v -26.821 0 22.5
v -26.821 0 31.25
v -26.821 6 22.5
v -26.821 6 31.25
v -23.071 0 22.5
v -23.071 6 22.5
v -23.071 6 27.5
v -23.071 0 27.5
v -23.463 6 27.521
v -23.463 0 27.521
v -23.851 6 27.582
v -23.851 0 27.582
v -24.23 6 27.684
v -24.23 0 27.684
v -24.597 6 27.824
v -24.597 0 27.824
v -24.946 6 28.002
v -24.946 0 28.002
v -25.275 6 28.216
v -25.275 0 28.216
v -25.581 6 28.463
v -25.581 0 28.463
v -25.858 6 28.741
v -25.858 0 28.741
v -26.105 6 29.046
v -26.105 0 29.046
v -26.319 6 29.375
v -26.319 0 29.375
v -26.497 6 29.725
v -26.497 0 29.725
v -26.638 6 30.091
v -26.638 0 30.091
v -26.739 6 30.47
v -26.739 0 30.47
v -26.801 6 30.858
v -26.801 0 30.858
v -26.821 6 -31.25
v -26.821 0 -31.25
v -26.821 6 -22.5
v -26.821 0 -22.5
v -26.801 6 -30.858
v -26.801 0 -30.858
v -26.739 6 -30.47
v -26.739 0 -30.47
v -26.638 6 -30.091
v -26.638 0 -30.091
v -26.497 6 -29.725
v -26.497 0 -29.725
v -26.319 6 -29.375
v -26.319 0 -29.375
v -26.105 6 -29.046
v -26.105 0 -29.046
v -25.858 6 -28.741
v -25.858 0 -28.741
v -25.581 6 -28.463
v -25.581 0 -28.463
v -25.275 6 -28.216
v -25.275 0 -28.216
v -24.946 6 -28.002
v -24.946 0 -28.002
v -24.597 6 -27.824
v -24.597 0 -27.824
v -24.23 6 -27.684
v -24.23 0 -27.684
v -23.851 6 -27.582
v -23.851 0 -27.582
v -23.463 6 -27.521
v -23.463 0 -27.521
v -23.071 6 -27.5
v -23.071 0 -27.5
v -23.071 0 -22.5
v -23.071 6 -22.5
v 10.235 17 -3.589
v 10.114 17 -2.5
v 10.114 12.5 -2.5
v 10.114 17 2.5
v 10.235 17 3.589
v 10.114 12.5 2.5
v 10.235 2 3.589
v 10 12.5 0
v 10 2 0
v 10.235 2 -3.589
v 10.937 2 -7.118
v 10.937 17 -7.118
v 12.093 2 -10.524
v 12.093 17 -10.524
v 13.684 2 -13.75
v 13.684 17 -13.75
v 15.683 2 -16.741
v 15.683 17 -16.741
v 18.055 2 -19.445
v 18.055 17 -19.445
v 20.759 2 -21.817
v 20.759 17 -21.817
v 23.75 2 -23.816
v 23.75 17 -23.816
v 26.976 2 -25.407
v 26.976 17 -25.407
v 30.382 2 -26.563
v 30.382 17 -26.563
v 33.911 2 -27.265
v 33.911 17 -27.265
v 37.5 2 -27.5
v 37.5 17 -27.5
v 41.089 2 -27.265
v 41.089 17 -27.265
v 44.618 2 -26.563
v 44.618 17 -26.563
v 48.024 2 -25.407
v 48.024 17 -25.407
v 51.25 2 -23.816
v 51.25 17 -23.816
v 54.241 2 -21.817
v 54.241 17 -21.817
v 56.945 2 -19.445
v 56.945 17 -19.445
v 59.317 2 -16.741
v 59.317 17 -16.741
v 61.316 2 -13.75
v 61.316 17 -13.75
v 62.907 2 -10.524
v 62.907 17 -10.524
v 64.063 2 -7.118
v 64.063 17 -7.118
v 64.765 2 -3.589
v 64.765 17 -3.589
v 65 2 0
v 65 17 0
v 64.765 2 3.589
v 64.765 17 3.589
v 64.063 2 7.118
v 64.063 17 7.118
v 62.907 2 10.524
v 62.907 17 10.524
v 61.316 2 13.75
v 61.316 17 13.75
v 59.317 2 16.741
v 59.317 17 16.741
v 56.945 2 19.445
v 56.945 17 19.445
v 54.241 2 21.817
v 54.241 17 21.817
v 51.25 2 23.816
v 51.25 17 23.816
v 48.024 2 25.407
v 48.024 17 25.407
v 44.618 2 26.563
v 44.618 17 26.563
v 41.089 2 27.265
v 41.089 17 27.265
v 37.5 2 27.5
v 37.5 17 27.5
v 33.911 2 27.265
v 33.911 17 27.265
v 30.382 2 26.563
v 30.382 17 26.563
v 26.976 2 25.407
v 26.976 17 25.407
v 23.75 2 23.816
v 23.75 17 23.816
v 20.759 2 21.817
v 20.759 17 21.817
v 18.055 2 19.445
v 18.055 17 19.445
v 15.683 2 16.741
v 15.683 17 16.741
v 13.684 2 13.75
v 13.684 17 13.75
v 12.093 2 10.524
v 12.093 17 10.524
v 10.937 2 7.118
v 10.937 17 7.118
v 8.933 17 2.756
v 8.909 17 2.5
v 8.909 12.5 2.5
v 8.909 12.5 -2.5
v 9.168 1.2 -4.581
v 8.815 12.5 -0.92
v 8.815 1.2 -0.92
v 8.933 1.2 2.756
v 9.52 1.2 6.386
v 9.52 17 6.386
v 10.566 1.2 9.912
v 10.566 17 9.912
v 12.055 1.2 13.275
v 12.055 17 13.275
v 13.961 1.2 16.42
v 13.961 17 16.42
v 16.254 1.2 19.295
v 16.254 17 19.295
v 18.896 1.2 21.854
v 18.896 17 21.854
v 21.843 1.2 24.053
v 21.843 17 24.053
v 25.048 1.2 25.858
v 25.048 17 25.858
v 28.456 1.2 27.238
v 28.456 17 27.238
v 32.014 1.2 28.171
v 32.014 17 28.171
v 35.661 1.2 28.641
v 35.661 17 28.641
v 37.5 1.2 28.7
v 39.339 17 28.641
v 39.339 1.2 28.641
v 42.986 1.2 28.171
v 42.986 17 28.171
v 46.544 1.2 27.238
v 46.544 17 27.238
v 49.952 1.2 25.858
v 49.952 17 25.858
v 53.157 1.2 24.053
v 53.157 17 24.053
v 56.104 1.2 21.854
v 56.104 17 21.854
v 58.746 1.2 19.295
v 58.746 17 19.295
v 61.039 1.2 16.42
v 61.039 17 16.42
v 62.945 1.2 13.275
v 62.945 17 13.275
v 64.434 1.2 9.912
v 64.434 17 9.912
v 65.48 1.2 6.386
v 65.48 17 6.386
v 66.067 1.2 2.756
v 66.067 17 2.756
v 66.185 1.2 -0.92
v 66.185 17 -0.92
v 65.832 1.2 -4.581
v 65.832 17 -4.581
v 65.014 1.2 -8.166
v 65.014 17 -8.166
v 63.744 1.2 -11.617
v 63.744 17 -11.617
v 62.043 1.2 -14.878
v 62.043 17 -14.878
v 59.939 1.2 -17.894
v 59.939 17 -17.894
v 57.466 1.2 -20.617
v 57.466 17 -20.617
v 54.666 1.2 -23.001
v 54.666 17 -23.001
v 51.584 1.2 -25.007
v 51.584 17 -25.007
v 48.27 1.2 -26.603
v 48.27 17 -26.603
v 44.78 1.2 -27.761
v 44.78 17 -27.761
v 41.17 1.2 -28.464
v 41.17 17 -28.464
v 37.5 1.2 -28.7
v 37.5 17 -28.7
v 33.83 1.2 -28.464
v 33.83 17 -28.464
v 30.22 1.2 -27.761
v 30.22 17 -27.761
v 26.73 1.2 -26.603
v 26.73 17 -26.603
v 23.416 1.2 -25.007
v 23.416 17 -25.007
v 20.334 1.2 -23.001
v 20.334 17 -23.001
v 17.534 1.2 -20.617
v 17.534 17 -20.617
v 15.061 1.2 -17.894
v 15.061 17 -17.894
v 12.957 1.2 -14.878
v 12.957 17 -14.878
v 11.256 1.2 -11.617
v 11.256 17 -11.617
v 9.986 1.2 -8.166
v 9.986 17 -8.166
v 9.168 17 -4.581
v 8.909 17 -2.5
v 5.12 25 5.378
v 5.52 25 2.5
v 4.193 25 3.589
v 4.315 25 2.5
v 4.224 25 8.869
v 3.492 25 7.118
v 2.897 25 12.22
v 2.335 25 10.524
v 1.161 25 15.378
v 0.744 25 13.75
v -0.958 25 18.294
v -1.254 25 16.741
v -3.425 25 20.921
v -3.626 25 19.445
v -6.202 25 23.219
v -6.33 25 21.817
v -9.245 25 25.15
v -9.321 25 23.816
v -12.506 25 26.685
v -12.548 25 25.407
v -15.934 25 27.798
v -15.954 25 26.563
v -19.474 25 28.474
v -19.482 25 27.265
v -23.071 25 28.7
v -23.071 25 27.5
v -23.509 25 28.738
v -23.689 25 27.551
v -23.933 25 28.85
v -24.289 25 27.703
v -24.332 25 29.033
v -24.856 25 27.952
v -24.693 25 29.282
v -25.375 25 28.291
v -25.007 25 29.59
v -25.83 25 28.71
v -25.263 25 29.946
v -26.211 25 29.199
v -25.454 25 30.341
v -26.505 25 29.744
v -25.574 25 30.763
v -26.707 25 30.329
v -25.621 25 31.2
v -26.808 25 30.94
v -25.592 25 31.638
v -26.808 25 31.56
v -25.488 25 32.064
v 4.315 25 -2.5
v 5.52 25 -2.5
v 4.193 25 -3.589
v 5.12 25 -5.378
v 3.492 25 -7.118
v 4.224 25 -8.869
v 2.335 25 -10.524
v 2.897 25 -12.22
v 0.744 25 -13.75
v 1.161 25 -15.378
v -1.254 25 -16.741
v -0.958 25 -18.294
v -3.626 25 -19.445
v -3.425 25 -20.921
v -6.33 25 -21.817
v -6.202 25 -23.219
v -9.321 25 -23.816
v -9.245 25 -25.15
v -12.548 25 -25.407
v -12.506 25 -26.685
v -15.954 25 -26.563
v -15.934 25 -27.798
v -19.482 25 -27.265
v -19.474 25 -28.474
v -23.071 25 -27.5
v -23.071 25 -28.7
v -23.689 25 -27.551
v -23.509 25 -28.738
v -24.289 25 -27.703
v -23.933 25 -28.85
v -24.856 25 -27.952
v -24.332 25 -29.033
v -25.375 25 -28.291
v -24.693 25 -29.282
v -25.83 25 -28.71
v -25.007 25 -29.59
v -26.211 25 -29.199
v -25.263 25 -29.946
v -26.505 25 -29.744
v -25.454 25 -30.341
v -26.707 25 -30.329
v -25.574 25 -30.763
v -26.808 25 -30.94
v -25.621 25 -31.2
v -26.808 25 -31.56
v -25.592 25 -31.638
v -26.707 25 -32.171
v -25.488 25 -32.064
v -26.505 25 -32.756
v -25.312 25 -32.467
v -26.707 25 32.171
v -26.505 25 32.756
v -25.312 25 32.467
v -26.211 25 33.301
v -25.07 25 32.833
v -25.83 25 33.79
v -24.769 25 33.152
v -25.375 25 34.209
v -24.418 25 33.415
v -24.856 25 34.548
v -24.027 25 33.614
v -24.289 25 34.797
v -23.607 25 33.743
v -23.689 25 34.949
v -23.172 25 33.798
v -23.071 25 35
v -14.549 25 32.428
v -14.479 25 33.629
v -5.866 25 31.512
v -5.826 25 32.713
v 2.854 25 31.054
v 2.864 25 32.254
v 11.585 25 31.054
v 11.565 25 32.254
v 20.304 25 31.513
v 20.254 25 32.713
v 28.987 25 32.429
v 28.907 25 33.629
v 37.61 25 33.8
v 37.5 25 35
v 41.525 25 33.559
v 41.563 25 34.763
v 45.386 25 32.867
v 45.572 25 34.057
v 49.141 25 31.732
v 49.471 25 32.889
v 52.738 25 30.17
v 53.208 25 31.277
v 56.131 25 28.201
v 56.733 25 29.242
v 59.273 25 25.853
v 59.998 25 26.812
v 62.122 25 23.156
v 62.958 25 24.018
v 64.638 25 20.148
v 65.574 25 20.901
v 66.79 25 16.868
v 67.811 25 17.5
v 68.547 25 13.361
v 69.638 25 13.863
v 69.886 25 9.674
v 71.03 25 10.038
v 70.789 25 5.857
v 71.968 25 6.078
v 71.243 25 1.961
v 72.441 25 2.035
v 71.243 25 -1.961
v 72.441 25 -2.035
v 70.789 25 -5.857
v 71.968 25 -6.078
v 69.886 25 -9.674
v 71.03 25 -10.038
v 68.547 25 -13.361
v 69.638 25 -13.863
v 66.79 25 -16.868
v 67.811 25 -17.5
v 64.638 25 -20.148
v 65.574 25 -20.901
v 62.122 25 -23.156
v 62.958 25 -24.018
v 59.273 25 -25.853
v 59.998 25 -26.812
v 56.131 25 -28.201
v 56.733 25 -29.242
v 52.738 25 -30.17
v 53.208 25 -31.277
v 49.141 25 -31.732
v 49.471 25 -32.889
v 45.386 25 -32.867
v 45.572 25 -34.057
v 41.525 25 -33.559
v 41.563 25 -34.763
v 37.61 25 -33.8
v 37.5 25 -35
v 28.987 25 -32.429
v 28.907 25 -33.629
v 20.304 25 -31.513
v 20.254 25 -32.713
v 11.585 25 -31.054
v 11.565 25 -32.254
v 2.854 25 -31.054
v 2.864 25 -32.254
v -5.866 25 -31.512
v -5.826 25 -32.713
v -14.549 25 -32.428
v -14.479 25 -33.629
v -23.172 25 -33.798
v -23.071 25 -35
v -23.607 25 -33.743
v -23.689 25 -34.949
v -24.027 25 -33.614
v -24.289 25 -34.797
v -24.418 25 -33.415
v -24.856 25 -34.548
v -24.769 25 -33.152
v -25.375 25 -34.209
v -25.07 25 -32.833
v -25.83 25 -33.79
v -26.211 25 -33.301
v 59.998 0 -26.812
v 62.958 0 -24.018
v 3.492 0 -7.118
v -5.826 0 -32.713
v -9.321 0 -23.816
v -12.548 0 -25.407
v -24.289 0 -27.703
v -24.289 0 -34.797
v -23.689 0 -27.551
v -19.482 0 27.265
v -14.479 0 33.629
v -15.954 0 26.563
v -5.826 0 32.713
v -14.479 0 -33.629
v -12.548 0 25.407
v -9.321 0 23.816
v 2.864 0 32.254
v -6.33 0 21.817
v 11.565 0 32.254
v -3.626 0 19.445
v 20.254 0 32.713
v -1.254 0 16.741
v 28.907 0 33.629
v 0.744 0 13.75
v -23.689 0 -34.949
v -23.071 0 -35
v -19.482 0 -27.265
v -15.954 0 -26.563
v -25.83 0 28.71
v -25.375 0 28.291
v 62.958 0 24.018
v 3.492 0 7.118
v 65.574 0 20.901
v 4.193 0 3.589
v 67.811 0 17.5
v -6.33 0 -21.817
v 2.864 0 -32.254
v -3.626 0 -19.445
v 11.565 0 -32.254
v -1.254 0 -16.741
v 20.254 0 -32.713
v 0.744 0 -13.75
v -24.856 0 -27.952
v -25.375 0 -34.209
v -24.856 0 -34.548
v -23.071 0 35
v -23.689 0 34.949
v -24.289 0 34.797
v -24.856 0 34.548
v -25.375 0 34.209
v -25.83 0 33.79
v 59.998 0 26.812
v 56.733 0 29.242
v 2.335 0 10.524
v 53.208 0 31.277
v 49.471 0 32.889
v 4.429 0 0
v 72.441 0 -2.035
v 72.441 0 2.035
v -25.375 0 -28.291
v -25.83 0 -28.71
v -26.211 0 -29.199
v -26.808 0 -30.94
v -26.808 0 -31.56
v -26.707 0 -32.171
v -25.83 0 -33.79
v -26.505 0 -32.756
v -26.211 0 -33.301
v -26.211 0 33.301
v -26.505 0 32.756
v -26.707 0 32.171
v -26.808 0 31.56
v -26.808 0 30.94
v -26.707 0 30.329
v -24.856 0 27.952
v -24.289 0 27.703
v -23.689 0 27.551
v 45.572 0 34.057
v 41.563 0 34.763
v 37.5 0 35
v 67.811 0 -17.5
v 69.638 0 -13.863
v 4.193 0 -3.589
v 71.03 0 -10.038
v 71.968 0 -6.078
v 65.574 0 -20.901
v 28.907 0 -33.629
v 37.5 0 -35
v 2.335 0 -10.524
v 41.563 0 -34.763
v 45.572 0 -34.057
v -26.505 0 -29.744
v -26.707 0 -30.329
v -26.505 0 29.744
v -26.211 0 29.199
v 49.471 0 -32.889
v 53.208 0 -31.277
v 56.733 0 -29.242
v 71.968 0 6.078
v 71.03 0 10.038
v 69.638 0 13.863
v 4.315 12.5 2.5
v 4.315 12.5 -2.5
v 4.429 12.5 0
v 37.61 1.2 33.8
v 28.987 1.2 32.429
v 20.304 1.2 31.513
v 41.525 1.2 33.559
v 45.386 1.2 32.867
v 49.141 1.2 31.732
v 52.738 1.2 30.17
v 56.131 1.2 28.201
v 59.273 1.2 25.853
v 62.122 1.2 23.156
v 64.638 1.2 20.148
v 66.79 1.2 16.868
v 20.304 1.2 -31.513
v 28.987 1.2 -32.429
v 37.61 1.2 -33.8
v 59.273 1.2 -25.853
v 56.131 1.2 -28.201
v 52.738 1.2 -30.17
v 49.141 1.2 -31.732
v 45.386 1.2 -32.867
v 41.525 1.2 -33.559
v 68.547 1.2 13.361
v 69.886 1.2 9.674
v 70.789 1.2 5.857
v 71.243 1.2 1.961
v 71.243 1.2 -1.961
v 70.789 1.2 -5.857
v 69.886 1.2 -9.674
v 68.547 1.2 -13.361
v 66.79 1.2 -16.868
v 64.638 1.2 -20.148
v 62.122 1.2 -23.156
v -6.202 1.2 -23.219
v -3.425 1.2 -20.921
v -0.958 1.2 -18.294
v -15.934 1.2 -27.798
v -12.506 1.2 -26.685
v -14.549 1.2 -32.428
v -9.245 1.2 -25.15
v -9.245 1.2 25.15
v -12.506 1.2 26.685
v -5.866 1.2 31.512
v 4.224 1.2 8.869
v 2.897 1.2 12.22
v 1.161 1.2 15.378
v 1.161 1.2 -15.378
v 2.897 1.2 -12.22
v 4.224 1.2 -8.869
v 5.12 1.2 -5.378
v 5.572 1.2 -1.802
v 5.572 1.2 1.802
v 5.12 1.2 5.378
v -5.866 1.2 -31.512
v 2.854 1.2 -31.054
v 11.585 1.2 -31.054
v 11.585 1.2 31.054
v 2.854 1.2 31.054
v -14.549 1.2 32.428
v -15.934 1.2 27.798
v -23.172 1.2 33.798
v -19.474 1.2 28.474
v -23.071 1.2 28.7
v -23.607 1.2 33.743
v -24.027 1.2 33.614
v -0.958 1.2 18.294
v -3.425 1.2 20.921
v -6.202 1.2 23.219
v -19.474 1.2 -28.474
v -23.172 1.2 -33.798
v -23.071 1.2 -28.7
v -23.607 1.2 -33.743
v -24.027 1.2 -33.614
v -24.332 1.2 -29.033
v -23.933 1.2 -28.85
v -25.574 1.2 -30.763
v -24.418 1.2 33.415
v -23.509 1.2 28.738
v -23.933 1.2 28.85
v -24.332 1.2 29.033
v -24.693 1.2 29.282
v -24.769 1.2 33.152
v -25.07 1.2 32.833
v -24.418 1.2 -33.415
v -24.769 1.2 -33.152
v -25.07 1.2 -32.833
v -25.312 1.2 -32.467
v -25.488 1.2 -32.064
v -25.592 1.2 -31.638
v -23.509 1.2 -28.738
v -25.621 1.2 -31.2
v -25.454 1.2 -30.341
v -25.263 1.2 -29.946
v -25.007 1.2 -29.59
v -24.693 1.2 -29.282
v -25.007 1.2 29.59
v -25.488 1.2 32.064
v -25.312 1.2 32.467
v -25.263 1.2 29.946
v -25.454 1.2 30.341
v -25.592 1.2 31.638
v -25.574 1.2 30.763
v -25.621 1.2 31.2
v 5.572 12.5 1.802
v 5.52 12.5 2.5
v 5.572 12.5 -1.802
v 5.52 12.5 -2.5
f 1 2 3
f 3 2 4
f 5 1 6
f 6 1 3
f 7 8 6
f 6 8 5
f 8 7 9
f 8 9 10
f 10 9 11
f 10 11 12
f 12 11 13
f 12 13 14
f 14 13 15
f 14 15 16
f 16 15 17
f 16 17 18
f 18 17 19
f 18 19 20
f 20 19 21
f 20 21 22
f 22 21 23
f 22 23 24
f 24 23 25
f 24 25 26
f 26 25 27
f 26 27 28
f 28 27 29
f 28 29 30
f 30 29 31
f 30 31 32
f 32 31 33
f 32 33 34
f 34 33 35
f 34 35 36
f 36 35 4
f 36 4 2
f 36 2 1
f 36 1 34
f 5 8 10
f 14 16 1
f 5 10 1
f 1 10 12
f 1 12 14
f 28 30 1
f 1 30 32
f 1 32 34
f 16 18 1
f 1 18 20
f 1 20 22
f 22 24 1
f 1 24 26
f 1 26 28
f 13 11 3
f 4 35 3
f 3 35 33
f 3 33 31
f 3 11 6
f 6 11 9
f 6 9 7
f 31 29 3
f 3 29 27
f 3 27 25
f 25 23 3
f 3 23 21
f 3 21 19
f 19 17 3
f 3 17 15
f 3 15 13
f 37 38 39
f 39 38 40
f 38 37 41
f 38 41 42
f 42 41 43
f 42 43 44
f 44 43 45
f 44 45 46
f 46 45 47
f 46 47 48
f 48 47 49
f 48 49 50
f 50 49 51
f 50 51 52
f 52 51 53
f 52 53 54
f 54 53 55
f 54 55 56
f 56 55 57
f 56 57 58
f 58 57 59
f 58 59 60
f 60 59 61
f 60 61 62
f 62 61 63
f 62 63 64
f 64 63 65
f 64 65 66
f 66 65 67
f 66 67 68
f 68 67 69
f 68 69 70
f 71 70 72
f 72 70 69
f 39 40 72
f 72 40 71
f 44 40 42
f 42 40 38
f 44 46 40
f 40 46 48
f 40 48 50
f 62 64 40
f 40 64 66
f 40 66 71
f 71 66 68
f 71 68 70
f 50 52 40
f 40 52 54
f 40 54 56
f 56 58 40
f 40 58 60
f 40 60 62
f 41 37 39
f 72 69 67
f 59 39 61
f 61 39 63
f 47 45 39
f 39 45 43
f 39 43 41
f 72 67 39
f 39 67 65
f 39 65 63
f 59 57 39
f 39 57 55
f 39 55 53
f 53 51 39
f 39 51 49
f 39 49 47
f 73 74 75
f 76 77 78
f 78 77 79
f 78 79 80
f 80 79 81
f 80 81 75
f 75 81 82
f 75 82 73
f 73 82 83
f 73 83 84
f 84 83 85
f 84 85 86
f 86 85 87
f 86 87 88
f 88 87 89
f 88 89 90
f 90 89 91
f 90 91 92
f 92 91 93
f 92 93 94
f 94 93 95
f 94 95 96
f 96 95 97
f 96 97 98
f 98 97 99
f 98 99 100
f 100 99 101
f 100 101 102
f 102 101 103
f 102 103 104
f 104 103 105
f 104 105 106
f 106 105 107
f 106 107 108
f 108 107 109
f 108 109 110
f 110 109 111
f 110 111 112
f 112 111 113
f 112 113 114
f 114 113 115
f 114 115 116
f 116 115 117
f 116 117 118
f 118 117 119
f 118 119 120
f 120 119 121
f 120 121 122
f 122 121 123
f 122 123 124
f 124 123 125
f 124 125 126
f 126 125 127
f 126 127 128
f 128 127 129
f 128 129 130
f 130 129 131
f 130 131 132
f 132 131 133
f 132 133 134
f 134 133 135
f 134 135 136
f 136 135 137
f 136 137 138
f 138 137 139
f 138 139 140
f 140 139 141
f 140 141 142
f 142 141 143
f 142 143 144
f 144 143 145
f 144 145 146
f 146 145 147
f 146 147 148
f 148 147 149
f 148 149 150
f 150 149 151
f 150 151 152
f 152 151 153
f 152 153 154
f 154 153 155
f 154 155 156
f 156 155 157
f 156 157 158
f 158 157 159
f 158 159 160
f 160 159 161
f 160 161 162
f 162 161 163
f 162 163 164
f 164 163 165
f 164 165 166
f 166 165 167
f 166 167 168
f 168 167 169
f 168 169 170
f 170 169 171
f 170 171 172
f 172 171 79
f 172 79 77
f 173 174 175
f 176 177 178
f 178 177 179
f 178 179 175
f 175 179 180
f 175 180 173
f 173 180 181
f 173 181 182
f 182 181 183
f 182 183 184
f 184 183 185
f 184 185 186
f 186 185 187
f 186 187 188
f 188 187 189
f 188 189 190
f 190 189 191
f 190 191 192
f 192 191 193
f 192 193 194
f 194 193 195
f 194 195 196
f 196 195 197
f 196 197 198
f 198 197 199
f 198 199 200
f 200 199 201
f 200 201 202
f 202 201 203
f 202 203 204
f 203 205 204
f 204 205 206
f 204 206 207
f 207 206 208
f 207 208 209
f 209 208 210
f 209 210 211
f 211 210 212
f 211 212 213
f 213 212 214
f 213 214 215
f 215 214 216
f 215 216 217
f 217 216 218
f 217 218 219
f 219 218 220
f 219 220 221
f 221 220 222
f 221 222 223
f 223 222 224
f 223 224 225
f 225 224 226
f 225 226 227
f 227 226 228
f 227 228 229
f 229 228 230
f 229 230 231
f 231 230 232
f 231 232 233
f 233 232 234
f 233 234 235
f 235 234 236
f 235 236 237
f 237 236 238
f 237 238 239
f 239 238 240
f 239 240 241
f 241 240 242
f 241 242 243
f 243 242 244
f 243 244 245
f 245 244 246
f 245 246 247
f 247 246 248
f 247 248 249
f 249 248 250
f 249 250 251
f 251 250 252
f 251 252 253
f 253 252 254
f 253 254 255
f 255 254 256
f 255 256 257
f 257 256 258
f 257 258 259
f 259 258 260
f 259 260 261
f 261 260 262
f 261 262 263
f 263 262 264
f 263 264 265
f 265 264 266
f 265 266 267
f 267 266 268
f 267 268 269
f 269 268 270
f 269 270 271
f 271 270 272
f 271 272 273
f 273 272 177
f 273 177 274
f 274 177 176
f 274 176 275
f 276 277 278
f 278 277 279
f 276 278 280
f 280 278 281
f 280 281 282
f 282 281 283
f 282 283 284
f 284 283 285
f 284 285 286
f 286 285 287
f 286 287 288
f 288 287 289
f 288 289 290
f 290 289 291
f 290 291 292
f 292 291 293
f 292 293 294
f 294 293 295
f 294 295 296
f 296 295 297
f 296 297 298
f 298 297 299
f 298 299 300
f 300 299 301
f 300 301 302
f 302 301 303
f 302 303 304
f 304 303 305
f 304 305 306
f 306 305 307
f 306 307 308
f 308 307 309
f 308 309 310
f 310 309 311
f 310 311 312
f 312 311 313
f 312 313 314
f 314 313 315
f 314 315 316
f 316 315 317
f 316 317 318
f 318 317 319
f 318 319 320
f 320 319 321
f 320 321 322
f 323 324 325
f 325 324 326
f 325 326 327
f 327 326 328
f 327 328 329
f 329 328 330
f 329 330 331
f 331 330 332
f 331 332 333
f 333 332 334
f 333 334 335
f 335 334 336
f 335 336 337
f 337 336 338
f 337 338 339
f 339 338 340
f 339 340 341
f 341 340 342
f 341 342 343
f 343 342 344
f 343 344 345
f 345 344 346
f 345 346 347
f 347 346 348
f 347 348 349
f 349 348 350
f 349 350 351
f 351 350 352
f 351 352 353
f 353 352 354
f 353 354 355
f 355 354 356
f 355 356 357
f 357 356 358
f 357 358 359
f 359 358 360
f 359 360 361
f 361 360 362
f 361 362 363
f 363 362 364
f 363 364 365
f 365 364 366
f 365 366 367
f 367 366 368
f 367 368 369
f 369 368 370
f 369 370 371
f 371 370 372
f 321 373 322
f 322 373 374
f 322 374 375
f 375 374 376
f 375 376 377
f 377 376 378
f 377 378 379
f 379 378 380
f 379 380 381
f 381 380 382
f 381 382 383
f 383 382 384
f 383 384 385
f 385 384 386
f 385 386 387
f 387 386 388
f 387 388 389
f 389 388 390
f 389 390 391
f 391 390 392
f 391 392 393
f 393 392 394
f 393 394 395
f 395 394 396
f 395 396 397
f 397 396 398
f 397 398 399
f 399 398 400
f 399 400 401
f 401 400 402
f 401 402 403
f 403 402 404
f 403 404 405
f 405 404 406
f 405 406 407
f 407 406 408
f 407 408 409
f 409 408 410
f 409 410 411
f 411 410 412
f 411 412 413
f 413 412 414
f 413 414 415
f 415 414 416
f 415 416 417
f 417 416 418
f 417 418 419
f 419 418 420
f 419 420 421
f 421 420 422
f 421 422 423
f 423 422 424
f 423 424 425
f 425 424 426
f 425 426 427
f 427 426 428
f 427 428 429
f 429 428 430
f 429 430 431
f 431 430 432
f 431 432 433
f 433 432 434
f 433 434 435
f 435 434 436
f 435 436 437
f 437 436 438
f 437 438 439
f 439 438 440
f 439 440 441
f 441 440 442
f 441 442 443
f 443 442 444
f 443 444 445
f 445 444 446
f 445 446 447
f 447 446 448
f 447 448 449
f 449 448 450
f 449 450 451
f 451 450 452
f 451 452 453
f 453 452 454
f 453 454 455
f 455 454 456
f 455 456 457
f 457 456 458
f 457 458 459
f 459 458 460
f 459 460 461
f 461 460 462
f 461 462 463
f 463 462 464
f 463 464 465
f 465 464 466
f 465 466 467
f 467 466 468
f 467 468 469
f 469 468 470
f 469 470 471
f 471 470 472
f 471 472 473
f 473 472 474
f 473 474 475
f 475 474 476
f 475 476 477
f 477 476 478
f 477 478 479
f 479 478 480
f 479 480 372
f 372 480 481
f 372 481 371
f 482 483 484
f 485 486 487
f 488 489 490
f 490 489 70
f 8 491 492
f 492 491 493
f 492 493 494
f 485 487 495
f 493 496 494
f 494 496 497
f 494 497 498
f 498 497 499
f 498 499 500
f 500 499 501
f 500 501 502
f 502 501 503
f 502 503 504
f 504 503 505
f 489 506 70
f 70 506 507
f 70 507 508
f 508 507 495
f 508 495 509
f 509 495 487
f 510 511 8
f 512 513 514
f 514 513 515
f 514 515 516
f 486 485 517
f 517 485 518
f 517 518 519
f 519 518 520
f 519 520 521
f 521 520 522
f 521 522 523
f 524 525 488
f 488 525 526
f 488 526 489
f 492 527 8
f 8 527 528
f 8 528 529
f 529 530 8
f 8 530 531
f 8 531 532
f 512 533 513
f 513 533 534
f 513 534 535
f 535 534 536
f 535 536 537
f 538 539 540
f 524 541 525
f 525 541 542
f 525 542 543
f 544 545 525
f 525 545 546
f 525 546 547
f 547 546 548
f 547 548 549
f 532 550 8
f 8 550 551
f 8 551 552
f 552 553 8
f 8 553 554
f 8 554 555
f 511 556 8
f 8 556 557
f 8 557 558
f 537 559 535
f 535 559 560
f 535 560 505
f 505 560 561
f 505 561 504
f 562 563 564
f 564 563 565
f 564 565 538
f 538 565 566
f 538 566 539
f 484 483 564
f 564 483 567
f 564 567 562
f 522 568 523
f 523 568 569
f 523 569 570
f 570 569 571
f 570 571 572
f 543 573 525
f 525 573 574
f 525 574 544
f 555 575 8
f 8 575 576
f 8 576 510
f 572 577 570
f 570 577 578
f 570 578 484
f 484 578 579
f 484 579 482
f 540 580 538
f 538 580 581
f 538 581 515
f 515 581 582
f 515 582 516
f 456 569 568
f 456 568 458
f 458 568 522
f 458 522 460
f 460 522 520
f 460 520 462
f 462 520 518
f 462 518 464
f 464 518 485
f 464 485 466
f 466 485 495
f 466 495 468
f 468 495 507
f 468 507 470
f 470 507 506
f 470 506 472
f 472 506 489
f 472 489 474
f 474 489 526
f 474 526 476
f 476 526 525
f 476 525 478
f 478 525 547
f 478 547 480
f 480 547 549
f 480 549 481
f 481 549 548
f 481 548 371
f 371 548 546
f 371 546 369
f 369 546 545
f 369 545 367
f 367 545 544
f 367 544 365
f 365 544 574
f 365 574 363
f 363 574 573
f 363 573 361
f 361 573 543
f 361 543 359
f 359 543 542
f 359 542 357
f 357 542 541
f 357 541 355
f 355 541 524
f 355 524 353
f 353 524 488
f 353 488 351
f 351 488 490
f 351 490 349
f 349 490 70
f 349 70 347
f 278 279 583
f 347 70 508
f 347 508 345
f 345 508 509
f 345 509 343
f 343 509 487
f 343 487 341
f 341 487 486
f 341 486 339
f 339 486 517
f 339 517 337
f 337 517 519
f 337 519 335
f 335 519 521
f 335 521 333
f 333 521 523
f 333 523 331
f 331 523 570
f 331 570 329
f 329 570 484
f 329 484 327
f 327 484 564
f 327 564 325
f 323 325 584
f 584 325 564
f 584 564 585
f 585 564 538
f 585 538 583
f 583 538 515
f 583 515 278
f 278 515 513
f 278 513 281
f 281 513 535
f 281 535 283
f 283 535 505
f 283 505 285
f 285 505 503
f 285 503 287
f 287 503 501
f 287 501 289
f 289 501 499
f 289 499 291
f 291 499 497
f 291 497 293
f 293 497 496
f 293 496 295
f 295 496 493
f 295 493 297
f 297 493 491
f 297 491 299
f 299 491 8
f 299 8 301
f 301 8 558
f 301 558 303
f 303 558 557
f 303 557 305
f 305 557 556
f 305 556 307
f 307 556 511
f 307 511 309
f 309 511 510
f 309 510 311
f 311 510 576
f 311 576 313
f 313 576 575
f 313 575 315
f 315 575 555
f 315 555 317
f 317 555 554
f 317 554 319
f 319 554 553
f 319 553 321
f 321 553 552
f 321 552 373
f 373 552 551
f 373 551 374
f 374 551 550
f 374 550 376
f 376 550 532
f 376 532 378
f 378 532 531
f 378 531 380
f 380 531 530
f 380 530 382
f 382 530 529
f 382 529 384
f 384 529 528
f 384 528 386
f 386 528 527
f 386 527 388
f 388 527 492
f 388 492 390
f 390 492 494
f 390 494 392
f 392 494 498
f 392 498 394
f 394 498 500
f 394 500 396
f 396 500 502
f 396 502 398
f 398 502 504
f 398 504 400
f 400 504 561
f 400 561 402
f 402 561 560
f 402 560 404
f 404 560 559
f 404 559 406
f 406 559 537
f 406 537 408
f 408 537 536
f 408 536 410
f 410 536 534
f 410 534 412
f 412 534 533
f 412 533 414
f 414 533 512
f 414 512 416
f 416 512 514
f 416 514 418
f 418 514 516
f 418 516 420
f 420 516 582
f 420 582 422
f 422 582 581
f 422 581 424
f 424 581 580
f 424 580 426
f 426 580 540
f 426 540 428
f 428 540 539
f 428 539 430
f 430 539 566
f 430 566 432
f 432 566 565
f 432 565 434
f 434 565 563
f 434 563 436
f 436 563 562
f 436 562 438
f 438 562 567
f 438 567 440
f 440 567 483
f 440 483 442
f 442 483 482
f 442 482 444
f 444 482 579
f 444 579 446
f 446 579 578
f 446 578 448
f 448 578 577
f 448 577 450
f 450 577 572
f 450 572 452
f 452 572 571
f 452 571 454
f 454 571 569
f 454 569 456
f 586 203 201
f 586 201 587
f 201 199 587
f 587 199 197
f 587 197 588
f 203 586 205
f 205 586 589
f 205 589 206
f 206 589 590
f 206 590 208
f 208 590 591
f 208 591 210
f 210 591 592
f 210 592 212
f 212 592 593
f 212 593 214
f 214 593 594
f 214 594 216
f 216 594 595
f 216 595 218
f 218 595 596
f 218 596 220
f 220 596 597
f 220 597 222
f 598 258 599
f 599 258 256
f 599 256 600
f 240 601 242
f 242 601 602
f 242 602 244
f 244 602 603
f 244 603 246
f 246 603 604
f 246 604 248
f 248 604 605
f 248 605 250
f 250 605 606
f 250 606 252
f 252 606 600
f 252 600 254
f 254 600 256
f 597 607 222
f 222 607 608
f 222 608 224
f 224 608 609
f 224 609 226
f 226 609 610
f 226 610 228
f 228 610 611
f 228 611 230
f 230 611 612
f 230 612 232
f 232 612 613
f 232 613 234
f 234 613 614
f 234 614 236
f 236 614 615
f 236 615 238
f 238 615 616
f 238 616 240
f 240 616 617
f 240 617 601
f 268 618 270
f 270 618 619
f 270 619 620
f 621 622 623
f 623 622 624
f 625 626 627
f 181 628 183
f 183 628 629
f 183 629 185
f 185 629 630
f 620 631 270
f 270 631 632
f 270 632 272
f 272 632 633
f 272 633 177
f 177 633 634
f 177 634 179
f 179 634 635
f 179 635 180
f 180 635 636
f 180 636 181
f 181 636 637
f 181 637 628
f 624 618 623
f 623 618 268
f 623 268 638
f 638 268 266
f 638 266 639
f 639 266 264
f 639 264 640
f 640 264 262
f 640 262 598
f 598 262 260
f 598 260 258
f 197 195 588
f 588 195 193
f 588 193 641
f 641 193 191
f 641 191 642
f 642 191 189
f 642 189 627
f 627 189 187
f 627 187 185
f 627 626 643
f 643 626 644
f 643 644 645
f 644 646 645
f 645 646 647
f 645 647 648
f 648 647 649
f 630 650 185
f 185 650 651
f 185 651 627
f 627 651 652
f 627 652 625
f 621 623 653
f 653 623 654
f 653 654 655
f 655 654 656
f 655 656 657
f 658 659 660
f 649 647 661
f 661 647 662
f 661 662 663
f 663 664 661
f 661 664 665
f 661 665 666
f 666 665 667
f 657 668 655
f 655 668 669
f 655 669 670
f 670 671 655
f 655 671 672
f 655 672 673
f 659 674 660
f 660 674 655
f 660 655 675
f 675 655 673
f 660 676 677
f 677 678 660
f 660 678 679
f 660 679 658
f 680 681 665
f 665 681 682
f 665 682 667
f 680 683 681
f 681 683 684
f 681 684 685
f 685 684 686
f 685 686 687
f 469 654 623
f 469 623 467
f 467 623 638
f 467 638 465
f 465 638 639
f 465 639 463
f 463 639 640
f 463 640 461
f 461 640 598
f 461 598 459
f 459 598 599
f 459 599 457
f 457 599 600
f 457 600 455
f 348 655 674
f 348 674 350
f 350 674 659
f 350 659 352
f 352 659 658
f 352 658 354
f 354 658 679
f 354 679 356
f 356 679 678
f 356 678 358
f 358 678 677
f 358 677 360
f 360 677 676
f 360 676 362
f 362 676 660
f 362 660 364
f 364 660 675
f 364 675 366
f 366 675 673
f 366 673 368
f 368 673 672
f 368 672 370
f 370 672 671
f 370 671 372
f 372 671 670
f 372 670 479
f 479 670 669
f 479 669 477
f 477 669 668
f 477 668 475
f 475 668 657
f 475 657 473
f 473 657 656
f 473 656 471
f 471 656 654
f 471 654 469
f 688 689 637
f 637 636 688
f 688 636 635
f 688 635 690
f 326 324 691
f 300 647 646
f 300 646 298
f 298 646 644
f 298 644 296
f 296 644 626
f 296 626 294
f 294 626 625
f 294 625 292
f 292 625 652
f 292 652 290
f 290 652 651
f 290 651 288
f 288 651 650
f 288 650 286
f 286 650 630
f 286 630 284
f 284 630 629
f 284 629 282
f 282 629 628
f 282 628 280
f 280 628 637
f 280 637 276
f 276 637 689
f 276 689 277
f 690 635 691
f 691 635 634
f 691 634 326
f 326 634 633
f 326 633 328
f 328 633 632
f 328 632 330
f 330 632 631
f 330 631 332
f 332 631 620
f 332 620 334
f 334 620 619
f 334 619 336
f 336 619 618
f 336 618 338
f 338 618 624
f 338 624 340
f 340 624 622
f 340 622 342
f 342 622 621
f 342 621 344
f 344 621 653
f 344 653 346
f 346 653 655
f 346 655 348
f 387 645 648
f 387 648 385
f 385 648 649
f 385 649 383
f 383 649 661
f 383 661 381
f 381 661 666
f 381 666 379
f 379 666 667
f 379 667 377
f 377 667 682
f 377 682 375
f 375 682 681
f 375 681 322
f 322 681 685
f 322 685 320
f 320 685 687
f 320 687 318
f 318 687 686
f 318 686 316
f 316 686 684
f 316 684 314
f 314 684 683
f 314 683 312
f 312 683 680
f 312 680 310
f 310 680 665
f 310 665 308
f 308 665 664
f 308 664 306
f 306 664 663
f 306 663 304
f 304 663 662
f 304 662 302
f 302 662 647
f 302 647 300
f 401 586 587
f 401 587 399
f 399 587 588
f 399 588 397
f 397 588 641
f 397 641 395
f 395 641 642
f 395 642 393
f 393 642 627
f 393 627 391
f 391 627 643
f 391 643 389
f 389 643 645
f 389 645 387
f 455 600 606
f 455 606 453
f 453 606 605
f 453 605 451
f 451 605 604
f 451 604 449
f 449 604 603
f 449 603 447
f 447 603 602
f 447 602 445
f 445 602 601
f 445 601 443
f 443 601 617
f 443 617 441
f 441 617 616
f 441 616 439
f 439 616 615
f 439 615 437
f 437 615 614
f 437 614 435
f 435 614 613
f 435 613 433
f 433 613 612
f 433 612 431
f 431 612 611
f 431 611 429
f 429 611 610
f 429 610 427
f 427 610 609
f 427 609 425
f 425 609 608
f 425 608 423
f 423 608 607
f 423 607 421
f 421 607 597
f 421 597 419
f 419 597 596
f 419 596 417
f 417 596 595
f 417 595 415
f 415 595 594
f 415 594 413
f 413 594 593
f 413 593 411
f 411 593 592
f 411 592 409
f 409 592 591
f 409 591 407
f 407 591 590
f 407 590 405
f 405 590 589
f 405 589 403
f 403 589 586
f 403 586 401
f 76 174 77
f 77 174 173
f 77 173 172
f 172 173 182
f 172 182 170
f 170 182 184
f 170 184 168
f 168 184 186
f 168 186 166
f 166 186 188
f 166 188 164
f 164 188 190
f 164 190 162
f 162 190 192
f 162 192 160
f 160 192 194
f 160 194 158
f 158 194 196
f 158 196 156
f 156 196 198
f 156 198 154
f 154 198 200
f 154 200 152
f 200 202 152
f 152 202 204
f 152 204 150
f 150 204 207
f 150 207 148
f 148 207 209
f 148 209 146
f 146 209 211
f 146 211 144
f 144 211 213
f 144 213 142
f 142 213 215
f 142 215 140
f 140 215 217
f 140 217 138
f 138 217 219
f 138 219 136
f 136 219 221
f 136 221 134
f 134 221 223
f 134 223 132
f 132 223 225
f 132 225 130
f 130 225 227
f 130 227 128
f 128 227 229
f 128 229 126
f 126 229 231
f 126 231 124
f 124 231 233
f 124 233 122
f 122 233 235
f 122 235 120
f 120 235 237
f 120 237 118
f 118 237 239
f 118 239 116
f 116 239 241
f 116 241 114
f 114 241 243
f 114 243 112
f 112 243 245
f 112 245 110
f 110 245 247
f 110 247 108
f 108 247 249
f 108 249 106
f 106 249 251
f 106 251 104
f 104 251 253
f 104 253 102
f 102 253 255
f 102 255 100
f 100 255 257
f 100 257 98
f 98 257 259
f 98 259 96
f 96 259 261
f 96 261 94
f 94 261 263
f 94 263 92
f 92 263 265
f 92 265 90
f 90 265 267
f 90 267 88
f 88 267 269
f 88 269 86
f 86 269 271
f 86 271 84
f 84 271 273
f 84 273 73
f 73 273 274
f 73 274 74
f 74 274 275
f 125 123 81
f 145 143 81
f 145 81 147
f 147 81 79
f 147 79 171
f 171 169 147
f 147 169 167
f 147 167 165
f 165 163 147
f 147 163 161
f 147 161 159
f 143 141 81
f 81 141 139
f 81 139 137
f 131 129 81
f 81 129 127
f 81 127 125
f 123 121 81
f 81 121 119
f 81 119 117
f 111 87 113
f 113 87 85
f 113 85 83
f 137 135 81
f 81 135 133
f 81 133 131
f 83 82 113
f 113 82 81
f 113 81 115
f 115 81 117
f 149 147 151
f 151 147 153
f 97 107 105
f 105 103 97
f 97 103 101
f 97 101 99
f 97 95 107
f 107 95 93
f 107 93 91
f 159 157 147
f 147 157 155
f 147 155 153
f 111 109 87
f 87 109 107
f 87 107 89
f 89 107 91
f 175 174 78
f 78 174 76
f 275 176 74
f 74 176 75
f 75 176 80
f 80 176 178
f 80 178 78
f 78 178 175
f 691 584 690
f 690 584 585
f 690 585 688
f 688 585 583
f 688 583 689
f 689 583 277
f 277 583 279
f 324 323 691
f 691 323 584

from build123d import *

# Parameters (mm, degrees)
CROQUIS1_R              = 27.5
SALIENTE_EXTRUIR1_DEPTH = 25
VACIADO3_T              = -1.2
CROQUIS5_R              = 29.5
CORTAR_EXTRUIR1_DEPTH   = 8
CROQUIS6_R              = 27.5
SALIENTE_EXTRUIR4_DEPTH = 2
CROQUIS7_W              = 3.75
CROQUIS7_H              = 5
SALIENTE_EXTRUIR5_DEPTH = 25
CORTAR_EXTRUIR2_DEPTH   = 19
CROQUIS9_W              = 14.993348068
CROQUIS9_H              = 5
CORTAR_EXTRUIR3_DEPTH   = 12.5


with BuildPart() as part:
    # Croquis1 → Saliente-Extruir1 (new body)
    with BuildSketch(Plane(origin=(0, 0, 0), x_dir=(1, 0, 0), z_dir=(0, 1, 0))):
        with BuildLine():
            ThreePointArc((-23.07129847, -27.5), (4.42870153, 0), (-23.07129847, 27.5))
            ThreePointArc((-23.07129847, 27.5), (-26.82129847, 31.25), (-23.07129847, 35))
            ThreePointArc((-23.07129847, 35), (7.214350765, 32.196730702), (37.5, 35))
            ThreePointArc((37.5, 35), (72.5, 0), (37.5, -35))
            ThreePointArc((37.5, -35), (7.214350765, -32.196730702), (-23.07129847, -35))
            ThreePointArc((-23.07129847, -35), (-26.82129847, -31.25), (-23.07129847, -27.5))
        make_face()
        with Locations((37.5, 0)):
            Circle(CROQUIS1_R, mode=Mode.SUBTRACT)
    extrude(amount=SALIENTE_EXTRUIR1_DEPTH)

    # Vaciado3
    vaciado3_openings = [part.faces().sort_by_distance(p)[0] for p in [
        (6.28580102, 25, 0),
    ]]
    offset(amount=VACIADO3_T, openings=vaciado3_openings, kind=Kind.INTERSECTION)

    # Croquis5 → Cortar-Extruir1 (cut)
    with BuildSketch(Plane(origin=(0, 25, 0), x_dir=(1, 0, 0), z_dir=(0, 1, 0))):
        with Locations((37.5, 0)):
            Circle(CROQUIS5_R)
    extrude(amount=-CORTAR_EXTRUIR1_DEPTH, mode=Mode.SUBTRACT)

    # Croquis6 → Saliente-Extruir4 (add)
    with BuildSketch(Plane.XZ):
        with Locations((37.5, 0)):
            Circle(CROQUIS6_R)
    extrude(amount=-SALIENTE_EXTRUIR4_DEPTH)

    # Croquis9 → Cortar-Extruir3 (cut)
    with BuildSketch(Plane(origin=(0, 25, 0), x_dir=(1, 0, 0), z_dir=(0, 1, 0))):
        with Locations((7.932233181, 0)):
            Rectangle(CROQUIS9_W, CROQUIS9_H)
    extrude(amount=-CORTAR_EXTRUIR3_DEPTH, mode=Mode.SUBTRACT)


with BuildPart() as body_2:
    # Croquis7 → Saliente-Extruir5 (new body)
    with BuildSketch(Plane(origin=(0, 25, 0), x_dir=(1, 0, 0), z_dir=(0, 1, 0))):
        with BuildLine():
            ThreePointArc((-26.82129847, -31.25), (-25.7229489, -28.598349571), (-23.07129847, -27.5))
            Line((-23.07129847, -27.5), (-23.07129847, -22.5))
            Line((-23.07129847, -22.5), (-26.82129847, -22.5))
            Line((-26.82129847, -22.5), (-26.82129847, -27.5))
            Line((-26.82129847, -27.5), (-26.82129847, -31.25))
        make_face()
        with BuildLine():
            ThreePointArc((-23.07129847, 27.5), (-25.7229489, 28.598349571), (-26.82129847, 31.25))
            Line((-26.82129847, 31.25), (-26.82129847, 27.5))
            Line((-26.82129847, 27.5), (-23.07129847, 27.5))
        make_face()
        with Locations((-24.94629847, 25)):
            Rectangle(CROQUIS7_W, CROQUIS7_H)
    extrude(amount=-SALIENTE_EXTRUIR5_DEPTH)

    # Croquis8 → Cortar-Extruir2 (cut)
    with BuildSketch(Plane(origin=(0, 25, 0), x_dir=(1, 0, 0), z_dir=(0, 1, 0))):
        with BuildLine():
            ThreePointArc((-23.07129847, 27.5), (-25.7229489, 28.598349571), (-26.82129847, 31.25))
            Line((-26.82129847, 31.25), (-26.82129847, 22.5))
            Line((-26.82129847, 22.5), (-23.07129847, 22.5))
            Line((-23.07129847, 22.5), (-23.07129847, 27.5))
        make_face()
        with BuildLine():
            Line((-23.07129847, -22.5), (-26.82129847, -22.5))
            Line((-26.82129847, -22.5), (-26.82129847, -31.25))
            ThreePointArc((-26.82129847, -31.25), (-25.7229489, -28.598349571), (-23.07129847, -27.5))
            Line((-23.07129847, -27.5), (-23.07129847, -22.5))
        make_face()
    extrude(amount=-CORTAR_EXTRUIR2_DEPTH, mode=Mode.SUBTRACT)


solid = Compound([part.part, body_2.part])
